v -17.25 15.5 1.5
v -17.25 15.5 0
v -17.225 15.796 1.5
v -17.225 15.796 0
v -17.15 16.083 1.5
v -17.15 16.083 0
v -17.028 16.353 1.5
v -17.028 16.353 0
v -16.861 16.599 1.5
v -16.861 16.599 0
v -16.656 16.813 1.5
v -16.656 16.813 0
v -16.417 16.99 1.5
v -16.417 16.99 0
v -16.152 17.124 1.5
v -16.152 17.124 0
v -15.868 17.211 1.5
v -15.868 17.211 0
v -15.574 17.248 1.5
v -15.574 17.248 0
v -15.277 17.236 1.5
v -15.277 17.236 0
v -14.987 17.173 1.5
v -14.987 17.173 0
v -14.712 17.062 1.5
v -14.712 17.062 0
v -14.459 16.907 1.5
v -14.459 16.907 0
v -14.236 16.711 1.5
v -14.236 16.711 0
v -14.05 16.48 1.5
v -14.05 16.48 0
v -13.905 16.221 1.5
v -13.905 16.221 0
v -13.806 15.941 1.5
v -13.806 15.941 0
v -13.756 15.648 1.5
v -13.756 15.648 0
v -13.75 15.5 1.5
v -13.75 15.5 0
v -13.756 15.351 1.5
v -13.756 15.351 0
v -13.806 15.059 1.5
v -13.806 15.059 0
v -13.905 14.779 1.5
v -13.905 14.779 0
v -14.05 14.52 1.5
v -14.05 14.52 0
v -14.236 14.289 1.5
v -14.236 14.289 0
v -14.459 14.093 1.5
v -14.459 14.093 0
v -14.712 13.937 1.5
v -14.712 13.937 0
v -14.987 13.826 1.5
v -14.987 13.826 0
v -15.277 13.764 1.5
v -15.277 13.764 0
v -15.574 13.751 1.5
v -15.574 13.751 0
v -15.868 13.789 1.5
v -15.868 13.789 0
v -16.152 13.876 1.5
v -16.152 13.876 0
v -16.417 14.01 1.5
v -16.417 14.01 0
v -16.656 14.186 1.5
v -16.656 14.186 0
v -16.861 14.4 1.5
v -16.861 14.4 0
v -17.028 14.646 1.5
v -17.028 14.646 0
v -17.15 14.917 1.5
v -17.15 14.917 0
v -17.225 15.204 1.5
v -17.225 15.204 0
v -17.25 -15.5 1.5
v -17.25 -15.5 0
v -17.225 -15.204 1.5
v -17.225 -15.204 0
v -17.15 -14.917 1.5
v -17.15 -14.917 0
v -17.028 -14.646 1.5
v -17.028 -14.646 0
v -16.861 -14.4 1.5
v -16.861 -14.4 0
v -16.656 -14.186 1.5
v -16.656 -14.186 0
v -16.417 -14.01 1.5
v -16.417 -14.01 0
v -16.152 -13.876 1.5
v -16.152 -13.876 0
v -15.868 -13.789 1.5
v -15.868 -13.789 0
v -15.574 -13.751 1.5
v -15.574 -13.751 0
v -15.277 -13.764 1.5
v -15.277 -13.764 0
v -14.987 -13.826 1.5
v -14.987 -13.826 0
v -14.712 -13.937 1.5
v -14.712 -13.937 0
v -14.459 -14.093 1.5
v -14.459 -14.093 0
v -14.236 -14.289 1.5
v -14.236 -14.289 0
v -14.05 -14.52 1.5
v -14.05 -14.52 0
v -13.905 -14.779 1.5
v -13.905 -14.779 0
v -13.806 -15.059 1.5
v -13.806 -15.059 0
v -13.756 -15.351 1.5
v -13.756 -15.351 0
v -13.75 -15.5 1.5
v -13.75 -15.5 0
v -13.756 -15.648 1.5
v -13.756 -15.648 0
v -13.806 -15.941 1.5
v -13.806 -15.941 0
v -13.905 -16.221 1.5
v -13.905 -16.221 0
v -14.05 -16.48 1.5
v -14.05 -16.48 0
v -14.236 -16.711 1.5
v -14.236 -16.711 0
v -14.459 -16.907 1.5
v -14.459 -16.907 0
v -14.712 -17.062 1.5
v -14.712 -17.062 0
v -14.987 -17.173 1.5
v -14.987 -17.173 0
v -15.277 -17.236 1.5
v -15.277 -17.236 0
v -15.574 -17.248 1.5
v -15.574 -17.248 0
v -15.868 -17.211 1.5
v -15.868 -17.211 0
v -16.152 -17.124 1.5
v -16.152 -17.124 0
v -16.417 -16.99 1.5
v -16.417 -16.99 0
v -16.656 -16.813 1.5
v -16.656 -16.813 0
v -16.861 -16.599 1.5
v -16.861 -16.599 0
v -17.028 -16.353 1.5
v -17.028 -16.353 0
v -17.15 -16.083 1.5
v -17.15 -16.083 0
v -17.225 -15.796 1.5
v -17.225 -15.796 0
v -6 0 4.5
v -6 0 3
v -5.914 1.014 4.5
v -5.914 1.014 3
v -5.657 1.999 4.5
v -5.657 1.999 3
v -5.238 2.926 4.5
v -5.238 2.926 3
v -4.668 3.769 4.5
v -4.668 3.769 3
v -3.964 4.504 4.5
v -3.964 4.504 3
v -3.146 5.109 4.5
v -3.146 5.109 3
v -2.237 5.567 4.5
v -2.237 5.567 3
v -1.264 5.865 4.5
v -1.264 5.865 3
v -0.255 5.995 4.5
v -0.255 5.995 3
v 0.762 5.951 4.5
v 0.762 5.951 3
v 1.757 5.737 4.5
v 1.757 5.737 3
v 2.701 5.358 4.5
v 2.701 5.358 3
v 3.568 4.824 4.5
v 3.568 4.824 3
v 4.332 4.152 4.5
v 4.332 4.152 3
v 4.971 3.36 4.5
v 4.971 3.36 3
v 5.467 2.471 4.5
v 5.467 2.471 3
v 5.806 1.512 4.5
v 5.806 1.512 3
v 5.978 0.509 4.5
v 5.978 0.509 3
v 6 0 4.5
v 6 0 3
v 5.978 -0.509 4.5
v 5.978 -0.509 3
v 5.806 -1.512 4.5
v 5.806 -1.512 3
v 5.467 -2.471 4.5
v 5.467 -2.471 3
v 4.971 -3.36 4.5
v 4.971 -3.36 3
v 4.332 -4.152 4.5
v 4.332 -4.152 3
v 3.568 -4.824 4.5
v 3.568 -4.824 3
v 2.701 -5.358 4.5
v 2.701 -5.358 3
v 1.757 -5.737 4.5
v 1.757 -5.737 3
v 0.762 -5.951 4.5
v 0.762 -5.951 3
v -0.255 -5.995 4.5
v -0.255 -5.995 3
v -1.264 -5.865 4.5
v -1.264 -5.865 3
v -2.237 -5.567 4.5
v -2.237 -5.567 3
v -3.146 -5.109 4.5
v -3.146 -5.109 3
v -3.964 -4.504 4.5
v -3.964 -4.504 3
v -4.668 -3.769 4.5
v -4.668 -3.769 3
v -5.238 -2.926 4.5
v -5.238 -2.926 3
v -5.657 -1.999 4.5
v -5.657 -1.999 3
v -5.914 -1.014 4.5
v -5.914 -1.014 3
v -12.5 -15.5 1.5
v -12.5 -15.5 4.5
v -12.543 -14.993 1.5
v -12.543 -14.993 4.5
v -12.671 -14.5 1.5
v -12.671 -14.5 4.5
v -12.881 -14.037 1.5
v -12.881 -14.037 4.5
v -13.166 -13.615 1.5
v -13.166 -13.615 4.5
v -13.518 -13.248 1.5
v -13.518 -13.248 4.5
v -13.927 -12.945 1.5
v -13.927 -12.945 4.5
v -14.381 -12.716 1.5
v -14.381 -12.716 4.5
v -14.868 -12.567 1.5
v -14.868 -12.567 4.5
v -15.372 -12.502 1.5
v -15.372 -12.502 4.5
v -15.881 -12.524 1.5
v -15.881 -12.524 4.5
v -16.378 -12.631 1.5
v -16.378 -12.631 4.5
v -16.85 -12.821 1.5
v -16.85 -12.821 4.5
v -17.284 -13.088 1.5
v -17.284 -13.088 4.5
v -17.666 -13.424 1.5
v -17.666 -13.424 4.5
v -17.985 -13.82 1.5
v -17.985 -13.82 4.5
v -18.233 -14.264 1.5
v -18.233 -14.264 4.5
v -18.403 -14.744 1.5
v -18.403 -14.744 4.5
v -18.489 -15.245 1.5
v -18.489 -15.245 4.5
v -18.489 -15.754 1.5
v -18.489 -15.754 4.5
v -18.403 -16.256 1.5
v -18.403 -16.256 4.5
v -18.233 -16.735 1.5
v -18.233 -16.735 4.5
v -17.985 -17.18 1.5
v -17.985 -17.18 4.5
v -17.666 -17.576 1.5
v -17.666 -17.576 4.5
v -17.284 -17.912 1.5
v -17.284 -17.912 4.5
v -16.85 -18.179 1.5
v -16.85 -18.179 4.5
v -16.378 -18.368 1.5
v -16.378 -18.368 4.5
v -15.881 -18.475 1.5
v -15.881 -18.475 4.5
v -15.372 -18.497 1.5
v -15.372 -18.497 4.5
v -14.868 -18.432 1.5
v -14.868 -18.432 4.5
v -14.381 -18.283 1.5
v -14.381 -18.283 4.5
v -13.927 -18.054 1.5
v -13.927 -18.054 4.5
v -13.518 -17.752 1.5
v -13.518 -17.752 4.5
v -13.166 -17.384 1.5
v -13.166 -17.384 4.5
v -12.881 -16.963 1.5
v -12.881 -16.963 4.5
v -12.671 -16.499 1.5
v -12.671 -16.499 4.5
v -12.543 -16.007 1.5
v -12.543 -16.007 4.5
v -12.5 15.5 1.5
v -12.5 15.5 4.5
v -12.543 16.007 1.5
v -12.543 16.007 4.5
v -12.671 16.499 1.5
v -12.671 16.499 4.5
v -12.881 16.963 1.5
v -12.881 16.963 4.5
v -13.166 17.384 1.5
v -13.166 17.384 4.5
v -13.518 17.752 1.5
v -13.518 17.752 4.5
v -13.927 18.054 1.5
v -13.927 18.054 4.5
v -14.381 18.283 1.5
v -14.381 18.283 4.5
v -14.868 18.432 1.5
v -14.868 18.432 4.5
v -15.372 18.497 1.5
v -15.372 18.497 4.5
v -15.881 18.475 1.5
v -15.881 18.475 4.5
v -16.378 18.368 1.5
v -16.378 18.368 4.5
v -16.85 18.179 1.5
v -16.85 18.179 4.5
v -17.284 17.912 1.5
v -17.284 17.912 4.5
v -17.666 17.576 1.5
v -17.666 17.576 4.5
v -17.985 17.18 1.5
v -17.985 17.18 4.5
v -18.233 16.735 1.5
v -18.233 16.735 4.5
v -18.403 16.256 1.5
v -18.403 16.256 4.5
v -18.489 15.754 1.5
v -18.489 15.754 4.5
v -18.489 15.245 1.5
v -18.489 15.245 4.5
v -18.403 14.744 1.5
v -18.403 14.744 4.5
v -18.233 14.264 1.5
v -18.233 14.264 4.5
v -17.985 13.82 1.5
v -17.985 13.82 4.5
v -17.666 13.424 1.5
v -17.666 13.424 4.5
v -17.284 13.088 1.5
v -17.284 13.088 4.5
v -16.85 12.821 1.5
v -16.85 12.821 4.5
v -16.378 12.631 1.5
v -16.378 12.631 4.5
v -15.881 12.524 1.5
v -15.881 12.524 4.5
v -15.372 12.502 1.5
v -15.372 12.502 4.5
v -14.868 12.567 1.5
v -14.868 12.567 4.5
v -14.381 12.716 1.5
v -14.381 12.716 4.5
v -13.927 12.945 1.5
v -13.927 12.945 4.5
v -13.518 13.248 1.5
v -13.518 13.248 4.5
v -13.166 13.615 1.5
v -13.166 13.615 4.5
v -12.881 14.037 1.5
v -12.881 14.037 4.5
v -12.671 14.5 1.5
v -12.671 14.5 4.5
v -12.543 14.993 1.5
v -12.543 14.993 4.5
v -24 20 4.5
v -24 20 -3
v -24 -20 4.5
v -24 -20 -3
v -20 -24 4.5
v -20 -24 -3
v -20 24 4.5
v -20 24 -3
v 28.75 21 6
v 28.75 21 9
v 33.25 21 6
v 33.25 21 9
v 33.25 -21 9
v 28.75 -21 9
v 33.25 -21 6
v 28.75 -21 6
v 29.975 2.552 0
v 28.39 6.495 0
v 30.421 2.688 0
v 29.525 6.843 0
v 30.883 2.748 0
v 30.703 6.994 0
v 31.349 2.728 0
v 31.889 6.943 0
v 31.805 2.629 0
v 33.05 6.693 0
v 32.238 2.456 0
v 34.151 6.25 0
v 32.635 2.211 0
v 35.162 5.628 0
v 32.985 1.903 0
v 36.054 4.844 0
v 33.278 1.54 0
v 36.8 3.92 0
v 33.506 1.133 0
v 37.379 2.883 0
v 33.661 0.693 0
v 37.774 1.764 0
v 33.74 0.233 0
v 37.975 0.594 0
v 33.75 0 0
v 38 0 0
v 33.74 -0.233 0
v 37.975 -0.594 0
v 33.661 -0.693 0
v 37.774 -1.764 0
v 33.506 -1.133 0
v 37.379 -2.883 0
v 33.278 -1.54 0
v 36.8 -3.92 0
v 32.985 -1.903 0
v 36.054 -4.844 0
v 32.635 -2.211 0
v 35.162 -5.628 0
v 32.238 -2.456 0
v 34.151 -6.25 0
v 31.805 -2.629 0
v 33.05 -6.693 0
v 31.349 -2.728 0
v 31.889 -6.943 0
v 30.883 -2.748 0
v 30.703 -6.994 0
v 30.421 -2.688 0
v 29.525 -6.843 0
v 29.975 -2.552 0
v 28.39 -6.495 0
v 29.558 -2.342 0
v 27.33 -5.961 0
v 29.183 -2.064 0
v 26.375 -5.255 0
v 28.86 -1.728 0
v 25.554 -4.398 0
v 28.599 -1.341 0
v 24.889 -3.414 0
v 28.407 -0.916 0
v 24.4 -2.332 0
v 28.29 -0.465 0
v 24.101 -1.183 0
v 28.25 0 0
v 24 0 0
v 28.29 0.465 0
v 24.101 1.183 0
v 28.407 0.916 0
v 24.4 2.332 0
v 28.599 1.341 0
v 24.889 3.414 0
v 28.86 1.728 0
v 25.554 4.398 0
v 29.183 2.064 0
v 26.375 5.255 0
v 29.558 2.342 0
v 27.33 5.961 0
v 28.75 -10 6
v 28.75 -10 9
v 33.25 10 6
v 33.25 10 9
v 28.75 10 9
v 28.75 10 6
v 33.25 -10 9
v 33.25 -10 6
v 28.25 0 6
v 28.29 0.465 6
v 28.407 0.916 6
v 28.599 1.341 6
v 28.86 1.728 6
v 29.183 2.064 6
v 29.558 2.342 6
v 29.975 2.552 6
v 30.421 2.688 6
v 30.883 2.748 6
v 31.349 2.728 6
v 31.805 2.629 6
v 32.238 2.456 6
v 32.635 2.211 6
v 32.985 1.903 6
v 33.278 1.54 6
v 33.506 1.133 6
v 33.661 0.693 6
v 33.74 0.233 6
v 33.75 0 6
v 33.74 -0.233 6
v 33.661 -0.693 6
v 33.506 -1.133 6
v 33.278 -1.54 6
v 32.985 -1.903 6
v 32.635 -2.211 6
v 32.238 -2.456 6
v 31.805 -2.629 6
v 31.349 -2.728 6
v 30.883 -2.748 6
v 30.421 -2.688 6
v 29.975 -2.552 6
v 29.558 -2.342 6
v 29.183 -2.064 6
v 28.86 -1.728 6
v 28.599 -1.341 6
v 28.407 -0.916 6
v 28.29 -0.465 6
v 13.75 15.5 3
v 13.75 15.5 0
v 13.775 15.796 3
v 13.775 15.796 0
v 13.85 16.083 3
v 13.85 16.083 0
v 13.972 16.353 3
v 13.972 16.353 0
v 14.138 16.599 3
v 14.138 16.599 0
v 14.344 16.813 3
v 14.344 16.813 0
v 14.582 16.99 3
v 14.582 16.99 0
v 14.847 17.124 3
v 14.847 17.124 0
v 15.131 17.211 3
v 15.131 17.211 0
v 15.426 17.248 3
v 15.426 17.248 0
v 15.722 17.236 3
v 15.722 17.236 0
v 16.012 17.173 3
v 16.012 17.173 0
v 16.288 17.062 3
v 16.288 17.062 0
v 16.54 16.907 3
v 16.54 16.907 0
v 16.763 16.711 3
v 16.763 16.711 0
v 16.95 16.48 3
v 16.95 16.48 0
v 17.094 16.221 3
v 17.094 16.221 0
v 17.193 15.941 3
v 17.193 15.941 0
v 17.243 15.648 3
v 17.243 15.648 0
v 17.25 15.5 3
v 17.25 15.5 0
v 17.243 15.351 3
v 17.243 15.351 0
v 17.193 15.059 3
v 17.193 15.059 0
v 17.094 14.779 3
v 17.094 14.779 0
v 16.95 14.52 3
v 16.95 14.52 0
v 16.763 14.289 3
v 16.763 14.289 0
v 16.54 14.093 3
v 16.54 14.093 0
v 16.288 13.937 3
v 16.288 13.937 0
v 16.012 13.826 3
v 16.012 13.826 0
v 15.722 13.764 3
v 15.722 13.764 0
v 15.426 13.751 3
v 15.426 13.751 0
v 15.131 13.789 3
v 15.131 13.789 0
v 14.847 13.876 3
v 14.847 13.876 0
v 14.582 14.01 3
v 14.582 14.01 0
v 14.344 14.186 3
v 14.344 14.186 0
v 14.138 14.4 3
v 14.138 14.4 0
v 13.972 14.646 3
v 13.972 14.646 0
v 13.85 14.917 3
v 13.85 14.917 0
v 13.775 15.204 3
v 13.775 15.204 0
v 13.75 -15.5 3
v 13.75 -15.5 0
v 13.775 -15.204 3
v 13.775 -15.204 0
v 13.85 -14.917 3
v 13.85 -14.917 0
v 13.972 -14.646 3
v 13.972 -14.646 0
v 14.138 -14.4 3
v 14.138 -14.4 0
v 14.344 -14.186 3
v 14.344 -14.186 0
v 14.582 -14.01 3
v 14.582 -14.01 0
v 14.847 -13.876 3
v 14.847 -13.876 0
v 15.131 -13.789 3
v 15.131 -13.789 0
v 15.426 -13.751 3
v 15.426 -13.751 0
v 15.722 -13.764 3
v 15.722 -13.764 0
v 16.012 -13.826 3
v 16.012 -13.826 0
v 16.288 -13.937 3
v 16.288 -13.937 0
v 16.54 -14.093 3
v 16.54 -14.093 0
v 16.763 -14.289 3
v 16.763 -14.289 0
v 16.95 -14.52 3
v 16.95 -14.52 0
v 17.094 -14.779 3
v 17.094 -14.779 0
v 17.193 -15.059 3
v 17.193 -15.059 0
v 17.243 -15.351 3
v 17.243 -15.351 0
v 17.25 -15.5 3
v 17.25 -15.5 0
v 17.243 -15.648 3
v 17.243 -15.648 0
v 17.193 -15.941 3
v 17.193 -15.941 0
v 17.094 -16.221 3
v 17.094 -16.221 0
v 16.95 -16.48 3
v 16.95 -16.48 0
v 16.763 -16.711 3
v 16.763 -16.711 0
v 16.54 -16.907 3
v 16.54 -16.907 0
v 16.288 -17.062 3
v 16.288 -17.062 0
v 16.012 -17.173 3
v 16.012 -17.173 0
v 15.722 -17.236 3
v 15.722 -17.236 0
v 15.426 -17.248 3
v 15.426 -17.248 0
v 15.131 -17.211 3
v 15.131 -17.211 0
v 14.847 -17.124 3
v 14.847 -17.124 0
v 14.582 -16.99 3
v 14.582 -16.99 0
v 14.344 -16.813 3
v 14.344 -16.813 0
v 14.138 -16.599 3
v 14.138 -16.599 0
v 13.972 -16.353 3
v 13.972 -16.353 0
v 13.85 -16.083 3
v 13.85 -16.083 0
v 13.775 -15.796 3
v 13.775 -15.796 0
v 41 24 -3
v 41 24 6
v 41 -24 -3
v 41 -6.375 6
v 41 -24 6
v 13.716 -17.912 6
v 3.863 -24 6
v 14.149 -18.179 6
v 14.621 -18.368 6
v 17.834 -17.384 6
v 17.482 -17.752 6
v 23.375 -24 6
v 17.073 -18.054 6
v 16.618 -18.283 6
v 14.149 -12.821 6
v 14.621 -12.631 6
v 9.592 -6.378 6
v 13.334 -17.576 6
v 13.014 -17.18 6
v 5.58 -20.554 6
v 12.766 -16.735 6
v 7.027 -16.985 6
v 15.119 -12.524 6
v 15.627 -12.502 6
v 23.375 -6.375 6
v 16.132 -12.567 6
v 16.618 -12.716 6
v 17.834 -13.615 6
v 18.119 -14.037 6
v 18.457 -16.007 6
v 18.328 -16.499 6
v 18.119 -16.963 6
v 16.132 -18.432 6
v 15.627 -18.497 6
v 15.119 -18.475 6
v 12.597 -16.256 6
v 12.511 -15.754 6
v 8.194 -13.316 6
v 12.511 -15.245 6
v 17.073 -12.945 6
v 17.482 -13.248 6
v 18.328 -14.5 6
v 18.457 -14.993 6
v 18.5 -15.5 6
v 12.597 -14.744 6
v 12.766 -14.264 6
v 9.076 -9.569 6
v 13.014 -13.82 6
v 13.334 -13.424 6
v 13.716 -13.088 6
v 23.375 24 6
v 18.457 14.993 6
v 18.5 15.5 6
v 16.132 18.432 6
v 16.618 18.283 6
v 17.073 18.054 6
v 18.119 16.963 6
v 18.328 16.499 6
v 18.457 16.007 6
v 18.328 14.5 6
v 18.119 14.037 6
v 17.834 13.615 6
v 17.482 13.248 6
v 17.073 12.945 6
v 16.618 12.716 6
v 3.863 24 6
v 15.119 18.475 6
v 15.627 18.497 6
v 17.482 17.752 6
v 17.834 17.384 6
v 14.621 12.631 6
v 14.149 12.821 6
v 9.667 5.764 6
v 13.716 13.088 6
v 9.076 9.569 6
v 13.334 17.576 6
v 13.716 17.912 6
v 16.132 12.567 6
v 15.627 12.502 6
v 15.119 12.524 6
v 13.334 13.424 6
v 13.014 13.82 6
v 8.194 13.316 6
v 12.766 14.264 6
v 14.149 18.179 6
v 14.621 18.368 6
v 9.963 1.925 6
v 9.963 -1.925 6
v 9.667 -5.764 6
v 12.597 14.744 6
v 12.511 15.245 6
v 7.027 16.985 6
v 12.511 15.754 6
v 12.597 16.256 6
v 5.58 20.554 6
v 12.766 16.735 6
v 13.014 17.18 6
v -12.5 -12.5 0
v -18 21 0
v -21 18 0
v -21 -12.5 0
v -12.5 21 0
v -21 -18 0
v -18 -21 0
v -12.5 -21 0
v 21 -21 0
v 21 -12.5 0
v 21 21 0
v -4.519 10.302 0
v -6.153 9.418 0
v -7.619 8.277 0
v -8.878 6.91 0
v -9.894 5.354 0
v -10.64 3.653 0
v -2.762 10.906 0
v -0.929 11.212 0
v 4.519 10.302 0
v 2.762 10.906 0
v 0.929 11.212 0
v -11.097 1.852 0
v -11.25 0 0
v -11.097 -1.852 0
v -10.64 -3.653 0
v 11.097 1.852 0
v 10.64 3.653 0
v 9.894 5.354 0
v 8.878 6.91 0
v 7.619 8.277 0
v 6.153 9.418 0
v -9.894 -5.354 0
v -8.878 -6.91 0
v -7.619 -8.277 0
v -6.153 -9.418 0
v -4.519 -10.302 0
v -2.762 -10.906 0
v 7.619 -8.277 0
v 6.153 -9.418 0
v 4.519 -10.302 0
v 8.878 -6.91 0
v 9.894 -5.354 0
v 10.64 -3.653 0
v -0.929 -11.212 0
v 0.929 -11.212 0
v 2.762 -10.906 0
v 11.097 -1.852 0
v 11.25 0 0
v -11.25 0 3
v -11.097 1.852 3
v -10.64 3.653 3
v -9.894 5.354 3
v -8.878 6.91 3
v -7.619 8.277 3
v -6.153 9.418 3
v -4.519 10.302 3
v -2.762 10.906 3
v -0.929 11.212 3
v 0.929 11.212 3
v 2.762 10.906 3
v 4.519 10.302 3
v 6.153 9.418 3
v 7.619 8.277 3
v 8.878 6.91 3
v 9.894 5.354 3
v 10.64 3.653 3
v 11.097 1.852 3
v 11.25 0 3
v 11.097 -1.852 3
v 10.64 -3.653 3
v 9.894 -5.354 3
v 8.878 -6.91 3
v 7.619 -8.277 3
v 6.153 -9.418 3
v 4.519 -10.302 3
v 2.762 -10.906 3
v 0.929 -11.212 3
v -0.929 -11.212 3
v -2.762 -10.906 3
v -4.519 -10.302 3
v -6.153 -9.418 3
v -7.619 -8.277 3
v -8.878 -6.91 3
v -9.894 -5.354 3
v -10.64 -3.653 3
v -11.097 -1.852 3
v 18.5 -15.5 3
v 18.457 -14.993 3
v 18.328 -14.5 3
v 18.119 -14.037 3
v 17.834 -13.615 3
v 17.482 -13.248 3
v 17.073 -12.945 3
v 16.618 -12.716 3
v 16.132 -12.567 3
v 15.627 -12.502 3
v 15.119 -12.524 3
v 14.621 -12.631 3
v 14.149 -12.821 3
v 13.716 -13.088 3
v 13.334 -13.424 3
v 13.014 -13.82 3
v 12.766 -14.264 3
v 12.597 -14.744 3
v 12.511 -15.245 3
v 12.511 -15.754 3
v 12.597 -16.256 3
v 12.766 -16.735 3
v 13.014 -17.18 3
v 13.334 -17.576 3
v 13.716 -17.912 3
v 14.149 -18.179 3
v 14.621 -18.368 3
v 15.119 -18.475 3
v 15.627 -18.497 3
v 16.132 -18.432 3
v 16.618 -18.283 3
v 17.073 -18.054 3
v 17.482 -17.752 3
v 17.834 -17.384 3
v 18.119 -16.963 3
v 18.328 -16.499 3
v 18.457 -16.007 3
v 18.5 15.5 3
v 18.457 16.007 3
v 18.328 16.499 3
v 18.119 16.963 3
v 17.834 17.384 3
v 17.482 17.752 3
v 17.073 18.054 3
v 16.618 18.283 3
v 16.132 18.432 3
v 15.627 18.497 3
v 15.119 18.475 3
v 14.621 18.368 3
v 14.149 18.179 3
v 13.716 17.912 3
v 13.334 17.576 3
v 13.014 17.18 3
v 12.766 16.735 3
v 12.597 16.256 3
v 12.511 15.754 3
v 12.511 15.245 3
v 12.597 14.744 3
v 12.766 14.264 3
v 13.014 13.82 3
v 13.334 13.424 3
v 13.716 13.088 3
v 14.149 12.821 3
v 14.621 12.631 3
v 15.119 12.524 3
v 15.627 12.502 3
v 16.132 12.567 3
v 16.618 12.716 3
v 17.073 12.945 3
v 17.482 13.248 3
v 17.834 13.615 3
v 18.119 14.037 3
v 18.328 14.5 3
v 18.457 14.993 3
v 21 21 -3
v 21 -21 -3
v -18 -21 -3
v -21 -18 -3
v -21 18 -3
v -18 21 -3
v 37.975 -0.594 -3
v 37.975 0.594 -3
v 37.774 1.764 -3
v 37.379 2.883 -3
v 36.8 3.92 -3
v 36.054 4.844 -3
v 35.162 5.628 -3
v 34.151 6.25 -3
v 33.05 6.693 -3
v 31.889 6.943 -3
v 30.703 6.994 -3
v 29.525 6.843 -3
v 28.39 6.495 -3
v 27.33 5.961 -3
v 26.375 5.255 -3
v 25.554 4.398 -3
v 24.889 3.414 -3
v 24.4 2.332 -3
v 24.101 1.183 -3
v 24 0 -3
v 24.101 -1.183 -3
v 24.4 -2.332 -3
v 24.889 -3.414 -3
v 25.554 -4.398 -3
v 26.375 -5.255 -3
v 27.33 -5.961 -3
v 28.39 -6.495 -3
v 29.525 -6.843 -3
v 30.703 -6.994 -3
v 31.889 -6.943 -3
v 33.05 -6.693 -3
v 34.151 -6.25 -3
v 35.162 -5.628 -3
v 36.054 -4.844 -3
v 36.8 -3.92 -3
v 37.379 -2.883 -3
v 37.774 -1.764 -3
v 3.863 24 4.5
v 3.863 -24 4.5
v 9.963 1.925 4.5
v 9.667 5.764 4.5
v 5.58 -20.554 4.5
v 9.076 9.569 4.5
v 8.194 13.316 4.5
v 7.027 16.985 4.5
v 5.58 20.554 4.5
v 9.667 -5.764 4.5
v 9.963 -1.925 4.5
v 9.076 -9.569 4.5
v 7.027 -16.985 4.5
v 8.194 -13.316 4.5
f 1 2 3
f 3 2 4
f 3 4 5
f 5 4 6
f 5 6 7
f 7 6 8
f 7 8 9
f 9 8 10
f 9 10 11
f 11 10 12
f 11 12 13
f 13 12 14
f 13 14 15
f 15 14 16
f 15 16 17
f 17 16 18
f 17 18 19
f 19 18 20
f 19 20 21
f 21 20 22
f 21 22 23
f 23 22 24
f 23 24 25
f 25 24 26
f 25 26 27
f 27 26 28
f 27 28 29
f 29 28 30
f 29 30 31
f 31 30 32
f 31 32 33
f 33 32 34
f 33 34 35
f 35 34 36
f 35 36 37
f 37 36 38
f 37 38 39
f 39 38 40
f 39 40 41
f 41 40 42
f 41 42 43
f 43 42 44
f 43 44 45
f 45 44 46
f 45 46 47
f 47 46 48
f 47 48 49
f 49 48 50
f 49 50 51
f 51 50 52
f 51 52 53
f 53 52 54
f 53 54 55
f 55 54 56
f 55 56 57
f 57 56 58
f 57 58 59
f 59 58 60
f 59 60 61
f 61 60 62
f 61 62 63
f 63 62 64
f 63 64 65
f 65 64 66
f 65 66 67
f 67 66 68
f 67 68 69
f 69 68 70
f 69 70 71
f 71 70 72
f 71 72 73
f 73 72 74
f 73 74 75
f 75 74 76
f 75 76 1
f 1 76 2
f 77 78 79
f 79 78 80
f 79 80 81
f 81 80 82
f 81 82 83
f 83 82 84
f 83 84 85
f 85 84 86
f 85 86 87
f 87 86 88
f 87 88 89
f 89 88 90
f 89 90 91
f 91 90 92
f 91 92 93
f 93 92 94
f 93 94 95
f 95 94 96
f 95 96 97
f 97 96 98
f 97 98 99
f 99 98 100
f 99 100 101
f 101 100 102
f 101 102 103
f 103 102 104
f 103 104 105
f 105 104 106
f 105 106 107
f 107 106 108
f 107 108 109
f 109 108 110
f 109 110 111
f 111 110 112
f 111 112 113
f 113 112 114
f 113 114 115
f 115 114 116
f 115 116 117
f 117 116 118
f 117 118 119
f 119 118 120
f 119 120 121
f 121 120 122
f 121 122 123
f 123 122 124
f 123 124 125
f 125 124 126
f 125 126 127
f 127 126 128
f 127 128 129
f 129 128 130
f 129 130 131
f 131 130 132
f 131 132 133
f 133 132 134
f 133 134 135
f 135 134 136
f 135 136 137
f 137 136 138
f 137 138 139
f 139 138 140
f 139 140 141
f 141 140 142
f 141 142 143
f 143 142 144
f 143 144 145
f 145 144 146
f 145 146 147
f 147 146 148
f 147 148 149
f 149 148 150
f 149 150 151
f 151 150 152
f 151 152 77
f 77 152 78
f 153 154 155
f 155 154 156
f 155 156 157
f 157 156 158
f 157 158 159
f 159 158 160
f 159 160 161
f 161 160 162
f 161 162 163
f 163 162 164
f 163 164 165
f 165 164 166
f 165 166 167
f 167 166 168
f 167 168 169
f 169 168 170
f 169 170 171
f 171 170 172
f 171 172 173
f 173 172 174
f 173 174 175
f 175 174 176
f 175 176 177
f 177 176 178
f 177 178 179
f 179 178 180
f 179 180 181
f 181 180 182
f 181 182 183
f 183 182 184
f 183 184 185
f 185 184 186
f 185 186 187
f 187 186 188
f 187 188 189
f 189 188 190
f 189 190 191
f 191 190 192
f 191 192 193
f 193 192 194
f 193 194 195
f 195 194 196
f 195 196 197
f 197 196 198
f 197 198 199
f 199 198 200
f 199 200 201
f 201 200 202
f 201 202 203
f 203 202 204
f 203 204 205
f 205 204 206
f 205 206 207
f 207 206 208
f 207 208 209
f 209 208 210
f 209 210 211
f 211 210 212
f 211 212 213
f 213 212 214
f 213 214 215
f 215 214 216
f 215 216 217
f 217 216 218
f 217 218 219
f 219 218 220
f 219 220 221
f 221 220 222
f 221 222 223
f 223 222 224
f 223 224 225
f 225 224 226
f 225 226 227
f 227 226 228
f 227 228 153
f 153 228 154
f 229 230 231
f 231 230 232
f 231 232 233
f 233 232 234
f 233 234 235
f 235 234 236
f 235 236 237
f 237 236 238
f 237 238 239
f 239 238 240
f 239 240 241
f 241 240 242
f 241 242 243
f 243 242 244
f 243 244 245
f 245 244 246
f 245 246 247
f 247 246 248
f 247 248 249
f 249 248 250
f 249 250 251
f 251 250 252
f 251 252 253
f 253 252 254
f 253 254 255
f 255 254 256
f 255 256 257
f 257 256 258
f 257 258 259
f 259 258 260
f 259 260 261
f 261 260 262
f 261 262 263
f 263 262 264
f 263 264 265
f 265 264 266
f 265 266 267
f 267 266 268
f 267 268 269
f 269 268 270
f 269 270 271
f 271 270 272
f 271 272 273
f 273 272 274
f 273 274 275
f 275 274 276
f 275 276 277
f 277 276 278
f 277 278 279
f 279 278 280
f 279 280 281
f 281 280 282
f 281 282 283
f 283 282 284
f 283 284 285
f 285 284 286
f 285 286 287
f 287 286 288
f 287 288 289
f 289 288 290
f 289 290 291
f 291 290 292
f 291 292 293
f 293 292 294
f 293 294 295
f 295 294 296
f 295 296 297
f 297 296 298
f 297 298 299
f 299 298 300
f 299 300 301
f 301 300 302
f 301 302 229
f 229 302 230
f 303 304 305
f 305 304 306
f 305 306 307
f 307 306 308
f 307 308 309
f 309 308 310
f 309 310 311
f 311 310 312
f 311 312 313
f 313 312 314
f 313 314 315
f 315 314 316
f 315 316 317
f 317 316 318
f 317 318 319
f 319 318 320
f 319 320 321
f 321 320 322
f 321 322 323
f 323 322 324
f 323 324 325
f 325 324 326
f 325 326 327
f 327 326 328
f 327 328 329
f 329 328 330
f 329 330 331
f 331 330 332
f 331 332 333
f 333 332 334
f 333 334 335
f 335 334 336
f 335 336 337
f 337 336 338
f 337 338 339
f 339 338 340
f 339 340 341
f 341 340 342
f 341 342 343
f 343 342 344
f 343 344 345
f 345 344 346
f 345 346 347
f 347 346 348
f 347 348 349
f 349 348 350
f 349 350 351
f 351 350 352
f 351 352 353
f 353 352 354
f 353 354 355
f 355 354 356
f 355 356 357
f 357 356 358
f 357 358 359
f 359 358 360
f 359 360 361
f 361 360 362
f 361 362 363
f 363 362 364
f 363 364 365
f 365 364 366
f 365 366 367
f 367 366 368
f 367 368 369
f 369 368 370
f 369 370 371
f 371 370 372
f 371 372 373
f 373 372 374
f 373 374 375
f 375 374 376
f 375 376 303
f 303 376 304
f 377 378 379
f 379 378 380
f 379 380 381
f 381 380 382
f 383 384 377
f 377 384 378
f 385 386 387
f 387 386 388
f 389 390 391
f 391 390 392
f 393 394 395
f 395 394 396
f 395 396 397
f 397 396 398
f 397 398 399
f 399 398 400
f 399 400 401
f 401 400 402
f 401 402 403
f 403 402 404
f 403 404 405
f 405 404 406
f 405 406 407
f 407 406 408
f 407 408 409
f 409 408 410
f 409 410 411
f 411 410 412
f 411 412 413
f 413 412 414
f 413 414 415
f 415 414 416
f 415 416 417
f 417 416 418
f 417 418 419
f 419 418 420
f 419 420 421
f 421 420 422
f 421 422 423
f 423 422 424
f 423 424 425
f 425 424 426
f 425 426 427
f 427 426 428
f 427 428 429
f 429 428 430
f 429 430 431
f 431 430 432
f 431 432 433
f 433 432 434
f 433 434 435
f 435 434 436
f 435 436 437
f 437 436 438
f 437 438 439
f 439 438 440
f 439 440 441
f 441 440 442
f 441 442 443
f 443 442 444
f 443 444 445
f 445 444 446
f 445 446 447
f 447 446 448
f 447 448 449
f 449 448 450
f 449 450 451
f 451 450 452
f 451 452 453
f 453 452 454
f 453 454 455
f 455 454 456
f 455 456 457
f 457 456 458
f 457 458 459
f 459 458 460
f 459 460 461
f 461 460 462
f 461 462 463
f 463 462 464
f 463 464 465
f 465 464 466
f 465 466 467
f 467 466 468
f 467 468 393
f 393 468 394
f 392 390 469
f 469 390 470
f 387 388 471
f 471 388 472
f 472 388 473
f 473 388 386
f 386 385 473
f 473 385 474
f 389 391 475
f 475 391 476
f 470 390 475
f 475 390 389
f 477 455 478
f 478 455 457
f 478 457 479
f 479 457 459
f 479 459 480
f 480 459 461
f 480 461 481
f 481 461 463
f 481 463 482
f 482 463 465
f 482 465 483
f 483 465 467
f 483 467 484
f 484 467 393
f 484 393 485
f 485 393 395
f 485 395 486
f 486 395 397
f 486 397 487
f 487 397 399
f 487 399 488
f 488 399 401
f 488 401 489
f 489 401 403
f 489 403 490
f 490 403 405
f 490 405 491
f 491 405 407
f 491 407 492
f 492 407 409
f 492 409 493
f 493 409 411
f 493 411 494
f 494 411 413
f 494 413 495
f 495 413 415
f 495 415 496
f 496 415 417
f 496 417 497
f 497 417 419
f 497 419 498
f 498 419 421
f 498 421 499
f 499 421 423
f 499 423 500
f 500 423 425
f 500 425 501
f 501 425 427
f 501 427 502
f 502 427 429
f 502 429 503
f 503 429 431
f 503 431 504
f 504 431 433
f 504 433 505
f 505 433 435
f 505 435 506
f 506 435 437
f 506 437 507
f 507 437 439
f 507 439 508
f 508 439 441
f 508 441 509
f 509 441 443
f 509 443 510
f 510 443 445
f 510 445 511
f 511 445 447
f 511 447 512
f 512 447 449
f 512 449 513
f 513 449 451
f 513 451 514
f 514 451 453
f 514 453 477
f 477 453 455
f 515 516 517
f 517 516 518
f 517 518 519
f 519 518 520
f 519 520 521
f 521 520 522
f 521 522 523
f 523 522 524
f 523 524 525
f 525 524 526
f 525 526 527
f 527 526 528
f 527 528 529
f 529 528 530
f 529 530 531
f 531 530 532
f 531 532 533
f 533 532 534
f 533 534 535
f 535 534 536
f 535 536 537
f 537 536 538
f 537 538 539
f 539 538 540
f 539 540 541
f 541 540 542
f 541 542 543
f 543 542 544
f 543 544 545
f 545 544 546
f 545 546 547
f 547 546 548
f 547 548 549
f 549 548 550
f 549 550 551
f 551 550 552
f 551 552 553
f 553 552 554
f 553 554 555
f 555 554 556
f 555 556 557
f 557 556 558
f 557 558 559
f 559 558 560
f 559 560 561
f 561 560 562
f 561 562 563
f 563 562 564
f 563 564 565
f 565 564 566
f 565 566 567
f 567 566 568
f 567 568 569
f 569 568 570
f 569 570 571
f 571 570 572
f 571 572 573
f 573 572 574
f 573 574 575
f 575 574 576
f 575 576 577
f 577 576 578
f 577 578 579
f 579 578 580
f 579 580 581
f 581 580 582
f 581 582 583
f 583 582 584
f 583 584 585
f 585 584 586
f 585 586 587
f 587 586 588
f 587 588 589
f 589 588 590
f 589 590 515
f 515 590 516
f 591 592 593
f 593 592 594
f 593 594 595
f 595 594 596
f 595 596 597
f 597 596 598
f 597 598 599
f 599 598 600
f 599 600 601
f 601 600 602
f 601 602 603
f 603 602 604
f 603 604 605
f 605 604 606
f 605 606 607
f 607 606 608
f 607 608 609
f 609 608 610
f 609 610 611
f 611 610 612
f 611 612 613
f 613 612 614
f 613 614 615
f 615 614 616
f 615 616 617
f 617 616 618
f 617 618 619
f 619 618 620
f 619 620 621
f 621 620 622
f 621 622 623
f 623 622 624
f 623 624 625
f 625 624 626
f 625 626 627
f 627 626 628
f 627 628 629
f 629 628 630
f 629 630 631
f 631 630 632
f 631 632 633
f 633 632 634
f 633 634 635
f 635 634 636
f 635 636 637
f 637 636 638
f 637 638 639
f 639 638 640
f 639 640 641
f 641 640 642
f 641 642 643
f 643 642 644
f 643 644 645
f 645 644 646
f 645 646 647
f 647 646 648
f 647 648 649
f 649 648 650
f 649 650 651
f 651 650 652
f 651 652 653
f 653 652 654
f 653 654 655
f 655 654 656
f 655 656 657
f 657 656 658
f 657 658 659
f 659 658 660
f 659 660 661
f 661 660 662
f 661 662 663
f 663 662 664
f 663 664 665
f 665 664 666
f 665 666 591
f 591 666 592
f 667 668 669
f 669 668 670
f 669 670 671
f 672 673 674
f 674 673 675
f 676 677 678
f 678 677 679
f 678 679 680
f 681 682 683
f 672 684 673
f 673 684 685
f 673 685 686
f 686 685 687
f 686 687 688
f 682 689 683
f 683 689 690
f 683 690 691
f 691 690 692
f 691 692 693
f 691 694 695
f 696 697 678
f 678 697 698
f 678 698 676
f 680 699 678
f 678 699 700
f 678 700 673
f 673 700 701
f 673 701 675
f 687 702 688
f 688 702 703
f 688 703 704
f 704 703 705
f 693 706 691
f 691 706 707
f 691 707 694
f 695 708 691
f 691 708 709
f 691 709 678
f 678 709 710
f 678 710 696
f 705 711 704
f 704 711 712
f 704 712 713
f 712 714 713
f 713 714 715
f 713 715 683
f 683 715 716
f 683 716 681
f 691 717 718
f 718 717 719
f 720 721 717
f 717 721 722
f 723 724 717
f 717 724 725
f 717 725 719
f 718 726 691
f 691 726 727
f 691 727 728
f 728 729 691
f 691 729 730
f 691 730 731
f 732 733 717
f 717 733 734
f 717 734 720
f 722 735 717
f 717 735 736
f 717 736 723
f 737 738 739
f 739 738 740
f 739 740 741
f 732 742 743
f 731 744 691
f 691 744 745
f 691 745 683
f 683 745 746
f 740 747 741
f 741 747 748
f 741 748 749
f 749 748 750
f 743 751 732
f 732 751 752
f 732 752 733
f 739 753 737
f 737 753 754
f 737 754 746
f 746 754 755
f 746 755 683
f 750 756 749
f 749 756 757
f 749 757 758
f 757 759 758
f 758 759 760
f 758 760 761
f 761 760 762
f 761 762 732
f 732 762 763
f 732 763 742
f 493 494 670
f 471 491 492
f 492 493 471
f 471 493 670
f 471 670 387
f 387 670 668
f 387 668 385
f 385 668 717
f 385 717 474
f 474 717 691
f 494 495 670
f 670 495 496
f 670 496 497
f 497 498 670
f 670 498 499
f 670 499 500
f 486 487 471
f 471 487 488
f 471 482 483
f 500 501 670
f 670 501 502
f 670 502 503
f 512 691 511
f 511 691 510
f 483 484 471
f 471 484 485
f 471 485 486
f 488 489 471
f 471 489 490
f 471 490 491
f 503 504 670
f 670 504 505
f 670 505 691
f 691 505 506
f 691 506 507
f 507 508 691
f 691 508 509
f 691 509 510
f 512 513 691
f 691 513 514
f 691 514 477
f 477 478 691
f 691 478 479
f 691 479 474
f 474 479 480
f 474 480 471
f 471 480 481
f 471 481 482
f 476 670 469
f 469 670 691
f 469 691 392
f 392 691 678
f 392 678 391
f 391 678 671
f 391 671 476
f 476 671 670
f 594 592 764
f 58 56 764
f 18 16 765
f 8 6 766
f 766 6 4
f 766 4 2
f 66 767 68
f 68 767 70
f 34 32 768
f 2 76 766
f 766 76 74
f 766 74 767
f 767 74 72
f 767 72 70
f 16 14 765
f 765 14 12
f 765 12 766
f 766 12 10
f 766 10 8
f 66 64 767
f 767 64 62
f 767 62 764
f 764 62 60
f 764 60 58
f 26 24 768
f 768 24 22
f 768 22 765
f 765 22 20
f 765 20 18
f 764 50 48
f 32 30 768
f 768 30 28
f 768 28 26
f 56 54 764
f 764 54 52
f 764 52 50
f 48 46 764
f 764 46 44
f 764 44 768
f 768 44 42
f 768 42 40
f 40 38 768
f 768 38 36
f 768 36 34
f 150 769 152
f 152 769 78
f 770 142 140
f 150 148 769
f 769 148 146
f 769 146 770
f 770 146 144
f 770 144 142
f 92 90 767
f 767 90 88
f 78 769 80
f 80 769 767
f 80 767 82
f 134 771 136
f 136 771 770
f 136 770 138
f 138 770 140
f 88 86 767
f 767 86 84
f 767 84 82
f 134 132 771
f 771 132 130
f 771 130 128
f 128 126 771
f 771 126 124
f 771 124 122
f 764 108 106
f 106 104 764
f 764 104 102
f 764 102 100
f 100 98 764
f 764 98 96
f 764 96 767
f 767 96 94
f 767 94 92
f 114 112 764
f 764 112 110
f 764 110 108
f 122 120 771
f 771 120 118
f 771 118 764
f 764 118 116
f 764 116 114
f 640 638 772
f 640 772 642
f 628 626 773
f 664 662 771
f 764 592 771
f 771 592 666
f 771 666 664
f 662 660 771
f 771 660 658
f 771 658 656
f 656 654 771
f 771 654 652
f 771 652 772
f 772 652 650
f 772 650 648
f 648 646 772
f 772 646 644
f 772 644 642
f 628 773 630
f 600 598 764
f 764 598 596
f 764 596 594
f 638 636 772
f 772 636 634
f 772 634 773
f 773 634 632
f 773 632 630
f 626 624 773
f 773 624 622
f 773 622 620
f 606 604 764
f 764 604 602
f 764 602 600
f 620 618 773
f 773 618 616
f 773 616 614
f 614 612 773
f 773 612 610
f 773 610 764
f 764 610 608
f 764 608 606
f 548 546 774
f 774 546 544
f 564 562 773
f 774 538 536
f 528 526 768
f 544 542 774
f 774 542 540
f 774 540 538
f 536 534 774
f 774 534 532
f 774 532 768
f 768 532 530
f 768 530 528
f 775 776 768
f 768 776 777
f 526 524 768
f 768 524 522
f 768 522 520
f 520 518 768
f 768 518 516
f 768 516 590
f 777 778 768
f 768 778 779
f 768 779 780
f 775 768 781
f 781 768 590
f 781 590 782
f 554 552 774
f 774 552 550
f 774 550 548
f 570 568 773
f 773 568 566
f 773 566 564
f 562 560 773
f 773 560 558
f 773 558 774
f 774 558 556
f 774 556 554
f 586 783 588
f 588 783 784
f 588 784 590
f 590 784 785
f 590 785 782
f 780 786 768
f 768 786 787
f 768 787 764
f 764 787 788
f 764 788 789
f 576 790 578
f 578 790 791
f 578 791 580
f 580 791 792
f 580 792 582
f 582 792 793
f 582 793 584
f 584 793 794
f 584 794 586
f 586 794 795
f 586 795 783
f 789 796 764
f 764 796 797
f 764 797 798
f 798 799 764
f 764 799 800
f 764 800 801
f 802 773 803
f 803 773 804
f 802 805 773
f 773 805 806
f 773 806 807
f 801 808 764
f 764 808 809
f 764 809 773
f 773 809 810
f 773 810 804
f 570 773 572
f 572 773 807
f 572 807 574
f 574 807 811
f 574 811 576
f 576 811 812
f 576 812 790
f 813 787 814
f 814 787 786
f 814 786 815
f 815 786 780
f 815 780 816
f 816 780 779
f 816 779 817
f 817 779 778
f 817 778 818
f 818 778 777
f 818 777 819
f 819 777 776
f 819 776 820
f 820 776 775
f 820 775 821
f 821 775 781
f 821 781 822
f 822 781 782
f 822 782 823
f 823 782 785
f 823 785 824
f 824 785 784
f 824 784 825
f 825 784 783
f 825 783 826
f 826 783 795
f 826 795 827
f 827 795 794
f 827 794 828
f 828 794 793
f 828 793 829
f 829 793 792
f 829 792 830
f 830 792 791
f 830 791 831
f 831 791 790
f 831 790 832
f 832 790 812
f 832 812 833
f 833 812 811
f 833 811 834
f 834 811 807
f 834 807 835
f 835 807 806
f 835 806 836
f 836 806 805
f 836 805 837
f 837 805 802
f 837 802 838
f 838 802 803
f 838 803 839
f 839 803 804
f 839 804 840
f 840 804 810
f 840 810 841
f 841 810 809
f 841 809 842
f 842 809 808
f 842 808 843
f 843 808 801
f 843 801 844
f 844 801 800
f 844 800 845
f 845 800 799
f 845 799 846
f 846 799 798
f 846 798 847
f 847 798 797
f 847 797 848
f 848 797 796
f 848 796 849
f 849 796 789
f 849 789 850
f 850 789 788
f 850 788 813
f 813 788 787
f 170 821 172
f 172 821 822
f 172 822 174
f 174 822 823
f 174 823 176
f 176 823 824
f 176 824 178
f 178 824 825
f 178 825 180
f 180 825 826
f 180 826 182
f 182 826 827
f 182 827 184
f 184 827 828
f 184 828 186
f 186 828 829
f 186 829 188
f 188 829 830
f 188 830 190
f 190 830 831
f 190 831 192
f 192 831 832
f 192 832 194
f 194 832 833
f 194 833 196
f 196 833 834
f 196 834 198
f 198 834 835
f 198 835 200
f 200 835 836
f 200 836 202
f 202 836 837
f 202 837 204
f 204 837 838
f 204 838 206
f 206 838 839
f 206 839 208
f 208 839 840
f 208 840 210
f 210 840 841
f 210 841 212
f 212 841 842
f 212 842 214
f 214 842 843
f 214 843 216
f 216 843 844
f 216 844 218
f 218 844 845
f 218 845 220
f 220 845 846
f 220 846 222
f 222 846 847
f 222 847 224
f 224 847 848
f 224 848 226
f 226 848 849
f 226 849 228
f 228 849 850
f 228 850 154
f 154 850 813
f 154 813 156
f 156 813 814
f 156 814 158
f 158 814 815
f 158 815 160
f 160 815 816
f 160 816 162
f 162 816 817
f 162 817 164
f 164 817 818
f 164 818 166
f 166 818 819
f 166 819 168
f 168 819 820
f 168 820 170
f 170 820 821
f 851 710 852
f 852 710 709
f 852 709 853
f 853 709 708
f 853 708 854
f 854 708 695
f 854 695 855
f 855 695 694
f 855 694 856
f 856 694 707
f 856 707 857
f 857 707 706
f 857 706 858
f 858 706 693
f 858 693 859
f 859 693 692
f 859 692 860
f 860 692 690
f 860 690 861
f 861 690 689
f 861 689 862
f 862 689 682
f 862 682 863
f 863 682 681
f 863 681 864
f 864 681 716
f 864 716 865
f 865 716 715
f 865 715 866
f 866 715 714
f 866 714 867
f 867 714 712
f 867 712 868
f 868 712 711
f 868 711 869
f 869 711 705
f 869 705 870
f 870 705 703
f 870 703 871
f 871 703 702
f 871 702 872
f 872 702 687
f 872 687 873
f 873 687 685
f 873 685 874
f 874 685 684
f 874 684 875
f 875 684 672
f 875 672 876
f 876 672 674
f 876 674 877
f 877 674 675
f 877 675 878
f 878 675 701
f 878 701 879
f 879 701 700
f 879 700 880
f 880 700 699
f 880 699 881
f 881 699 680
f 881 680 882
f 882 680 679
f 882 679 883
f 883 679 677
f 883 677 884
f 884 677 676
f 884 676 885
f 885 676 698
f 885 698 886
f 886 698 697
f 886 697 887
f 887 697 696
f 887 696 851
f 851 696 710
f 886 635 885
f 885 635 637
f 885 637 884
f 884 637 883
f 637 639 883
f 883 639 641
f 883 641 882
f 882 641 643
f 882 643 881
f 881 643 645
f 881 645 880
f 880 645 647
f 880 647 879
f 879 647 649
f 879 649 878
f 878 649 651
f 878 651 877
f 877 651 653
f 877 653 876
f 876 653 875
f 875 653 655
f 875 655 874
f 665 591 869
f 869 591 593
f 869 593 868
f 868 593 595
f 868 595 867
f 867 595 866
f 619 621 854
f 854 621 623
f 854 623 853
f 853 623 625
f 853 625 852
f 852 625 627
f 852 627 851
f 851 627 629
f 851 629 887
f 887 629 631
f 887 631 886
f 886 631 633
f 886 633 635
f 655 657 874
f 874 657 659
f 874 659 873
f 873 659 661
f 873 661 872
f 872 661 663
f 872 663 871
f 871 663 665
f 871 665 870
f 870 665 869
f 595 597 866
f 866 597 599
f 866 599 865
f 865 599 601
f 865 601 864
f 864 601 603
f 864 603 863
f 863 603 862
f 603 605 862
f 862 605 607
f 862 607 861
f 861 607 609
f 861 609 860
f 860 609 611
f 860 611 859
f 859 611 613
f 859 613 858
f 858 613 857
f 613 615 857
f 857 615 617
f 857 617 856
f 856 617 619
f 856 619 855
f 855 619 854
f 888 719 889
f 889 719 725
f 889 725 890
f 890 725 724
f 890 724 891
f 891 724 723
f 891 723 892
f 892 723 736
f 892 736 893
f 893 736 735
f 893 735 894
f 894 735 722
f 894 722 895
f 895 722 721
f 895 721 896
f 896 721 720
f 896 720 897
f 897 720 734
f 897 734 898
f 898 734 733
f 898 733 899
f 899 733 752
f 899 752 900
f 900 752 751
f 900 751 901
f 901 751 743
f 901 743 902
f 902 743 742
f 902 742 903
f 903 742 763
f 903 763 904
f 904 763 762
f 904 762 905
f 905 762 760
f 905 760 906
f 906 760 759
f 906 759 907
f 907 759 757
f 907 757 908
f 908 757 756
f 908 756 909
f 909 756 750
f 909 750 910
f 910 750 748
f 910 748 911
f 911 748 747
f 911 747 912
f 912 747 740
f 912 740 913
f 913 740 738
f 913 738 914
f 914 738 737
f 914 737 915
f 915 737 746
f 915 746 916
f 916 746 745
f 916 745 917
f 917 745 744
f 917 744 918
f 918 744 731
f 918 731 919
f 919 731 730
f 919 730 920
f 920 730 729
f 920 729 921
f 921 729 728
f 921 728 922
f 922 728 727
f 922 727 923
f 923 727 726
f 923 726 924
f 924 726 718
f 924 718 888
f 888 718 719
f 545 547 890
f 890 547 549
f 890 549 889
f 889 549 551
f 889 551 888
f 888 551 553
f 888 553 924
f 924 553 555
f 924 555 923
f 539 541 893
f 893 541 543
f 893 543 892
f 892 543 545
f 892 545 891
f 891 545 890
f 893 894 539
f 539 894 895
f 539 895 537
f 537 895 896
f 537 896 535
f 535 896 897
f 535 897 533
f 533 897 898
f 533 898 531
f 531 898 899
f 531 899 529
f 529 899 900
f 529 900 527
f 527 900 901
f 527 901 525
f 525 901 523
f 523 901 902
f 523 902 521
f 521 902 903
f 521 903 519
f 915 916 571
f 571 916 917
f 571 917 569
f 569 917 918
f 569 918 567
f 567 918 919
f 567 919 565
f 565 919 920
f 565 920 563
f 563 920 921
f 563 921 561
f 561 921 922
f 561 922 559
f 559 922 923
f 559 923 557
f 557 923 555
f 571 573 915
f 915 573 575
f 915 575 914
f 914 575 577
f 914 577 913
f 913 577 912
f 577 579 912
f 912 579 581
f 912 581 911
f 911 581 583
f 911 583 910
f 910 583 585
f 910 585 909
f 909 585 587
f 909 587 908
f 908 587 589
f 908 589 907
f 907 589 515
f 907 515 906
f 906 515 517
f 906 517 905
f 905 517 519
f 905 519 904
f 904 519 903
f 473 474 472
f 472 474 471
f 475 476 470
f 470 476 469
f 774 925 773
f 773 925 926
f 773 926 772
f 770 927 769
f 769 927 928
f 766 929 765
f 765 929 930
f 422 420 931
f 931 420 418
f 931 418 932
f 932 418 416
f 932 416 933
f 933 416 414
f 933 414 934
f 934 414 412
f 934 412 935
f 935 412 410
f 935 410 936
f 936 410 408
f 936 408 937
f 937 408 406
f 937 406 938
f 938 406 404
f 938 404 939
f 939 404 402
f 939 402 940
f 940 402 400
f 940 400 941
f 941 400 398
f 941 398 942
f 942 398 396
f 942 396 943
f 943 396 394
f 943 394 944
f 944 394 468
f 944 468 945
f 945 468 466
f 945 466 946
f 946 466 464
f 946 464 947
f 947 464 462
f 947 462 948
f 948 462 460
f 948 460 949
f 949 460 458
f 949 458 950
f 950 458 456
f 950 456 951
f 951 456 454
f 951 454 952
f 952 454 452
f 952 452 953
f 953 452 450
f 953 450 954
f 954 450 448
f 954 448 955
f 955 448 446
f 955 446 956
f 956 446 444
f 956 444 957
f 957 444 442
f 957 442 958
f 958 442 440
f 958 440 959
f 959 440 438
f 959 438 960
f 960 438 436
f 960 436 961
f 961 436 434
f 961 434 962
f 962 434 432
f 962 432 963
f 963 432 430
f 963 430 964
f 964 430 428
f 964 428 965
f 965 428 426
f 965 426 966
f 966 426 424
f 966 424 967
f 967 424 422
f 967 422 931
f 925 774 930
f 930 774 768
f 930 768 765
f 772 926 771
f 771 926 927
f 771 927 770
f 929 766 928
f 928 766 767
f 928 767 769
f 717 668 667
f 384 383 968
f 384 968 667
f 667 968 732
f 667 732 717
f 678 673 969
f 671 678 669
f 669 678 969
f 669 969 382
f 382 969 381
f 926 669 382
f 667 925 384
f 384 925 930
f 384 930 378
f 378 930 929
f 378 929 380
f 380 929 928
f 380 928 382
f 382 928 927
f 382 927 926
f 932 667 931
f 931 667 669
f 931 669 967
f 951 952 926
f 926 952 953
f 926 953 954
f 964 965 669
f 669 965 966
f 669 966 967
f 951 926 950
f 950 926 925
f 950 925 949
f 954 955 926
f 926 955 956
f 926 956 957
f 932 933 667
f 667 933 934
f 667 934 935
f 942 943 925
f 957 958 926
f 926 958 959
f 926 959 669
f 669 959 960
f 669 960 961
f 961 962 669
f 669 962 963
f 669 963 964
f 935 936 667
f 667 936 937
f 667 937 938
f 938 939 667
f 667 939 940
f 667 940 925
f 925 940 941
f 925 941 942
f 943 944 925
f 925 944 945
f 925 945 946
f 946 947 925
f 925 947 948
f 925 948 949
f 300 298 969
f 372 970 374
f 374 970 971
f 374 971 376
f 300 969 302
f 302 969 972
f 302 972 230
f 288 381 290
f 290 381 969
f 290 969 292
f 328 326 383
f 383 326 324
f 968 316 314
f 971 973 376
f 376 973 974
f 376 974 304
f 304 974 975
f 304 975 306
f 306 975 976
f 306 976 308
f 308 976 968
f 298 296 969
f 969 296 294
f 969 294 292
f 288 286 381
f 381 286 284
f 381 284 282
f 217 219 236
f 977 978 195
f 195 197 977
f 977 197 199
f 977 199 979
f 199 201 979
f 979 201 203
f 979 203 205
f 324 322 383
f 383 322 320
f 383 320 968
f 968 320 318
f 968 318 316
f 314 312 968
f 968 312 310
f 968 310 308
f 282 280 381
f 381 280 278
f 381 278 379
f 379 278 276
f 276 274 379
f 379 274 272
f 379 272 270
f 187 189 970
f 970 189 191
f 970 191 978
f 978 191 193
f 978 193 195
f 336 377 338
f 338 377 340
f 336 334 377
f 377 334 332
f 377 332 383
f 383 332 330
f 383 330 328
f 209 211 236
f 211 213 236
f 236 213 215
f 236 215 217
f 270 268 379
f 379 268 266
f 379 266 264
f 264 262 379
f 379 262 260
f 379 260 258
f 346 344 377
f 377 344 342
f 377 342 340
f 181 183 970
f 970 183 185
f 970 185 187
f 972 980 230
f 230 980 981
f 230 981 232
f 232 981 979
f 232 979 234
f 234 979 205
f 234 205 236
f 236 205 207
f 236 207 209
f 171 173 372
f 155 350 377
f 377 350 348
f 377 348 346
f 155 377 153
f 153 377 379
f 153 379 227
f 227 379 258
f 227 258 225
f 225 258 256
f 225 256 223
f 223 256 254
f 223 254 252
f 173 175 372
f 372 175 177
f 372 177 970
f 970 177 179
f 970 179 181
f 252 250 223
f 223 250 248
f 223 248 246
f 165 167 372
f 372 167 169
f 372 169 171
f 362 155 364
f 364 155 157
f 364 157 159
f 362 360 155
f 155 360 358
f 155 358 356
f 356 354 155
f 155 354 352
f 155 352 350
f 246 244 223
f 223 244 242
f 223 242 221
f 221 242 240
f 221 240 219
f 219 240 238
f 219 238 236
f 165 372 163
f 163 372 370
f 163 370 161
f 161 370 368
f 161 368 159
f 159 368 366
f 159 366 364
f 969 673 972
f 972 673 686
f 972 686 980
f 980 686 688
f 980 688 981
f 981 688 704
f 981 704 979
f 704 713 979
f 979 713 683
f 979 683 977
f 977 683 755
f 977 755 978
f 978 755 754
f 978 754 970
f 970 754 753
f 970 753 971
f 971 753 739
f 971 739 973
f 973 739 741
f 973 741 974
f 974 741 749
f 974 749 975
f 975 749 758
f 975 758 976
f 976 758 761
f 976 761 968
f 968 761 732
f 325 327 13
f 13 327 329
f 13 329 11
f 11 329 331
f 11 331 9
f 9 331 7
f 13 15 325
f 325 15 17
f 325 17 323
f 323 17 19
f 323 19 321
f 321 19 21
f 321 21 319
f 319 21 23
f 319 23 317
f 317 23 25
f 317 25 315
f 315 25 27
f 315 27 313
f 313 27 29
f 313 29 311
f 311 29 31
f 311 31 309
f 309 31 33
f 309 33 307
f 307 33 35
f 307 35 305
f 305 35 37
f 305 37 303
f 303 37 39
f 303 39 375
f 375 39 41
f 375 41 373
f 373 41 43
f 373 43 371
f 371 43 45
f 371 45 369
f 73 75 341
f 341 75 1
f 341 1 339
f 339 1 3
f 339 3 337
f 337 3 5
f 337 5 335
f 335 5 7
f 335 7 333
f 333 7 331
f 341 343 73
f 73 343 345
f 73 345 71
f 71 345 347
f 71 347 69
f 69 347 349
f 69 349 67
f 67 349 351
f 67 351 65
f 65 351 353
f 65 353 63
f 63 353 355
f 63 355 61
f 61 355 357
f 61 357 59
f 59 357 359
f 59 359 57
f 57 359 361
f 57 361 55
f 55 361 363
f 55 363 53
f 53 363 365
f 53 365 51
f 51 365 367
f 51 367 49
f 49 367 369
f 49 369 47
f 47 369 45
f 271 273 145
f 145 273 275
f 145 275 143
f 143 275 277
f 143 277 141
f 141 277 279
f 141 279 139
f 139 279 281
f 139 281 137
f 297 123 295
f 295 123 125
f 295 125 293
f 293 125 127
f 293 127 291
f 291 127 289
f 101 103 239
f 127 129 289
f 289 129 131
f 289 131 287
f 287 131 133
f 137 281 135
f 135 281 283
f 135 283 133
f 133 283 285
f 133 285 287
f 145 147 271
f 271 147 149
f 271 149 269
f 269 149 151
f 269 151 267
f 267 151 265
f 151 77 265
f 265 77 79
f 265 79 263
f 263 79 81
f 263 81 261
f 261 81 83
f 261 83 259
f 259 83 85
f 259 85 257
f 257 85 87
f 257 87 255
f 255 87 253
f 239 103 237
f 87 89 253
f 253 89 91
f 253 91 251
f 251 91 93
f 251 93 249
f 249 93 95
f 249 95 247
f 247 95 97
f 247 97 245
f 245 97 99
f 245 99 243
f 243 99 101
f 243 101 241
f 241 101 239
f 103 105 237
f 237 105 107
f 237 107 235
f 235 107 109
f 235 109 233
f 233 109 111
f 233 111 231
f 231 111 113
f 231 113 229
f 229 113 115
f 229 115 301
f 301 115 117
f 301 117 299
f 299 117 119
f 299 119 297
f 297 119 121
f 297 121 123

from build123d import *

# Parameters (mm, degrees)
SKETCH1_W                = 20
SKETCH1_H                = 42
SKETCH1_W_2              = 42
BOSS_EXTRUDE1_DEPTH      = 6
SKETCH2_R                = 11.25
CUT_EXTRUDE1_DEPTH       = 3
CUT_EXTRUDE2_DEPTH       = 47.454278597
CUT_EXTRUDE2_DEPTH_BACK  = 47.454278597
SKETCH3_R                = 1.75
SKETCH3_R_2              = 6
CUT_EXTRUDE3_START       = -3
SKETCH4_R                = 3
SKETCH4_R_2              = 1.75
CUT_EXTRUDE3_DEPTH       = 3
SKETCH5_W                = 4.5
SKETCH5_H                = 42
BOSS_EXTRUDE2_DEPTH      = 3
CHAMFER1_SIZE            = 3
CUT_EXTRUDE4_DEPTH       = 47.936126811
CUT_EXTRUDE4_DEPTH_BACK  = 47.936126811
SKETCH6_R                = 2.75
SKETCH7_W                = 9.456435582
SKETCH7_H                = 20
SKETCH7_R                = 2.75
CUT_EXTRUDE5_DEPTH       = 47.454278597
BOSS_EXTRUDE4_DEPTH      = 3
BOSS_EXTRUDE4_DEPTH_BACK = 6
SKETCH8_W                = 20
SKETCH8_H                = 42
SKETCH8_R                = 7
CHAMFER2_SIZE            = 4
SKETCH9_R                = 50
CUT_EXTRUDE7_DEPTH       = 1.5
CUT_EXTRUDE8_START       = -1.5
SKETCH10_R               = 3
CUT_EXTRUDE8_DEPTH       = 1.5


with BuildPart() as part:
    # Sketch1 → Boss-Extrude1 (new body)
    with BuildSketch(Plane.XY):
        with Locations((31, 0)):
            Rectangle(SKETCH1_W, SKETCH1_H)
        Rectangle(SKETCH1_W_2, SKETCH1_H)
    extrude(amount=BOSS_EXTRUDE1_DEPTH)

    # Sketch2 → Cut-Extrude1 (cut)
    with BuildSketch(Plane.XY):
        Circle(SKETCH2_R)
    extrude(amount=CUT_EXTRUDE1_DEPTH, mode=Mode.SUBTRACT)

    # Sketch3 → Cut-Extrude2 (cut, two sides: drawn at the far end of the back side and taken through both)
    with BuildSketch(Plane.XY.offset(-CUT_EXTRUDE2_DEPTH_BACK)):
        with Locations((-15.499780644, 15.499780644)):
            Circle(SKETCH3_R)
        Circle(SKETCH3_R_2)
        with Locations((15.499780644, 15.499780644)):
            Circle(SKETCH3_R)
        with Locations((15.499780644, -15.499780644)):
            Circle(SKETCH3_R)
        with Locations((-15.499780644, -15.499780644)):
            Circle(SKETCH3_R)
    extrude(amount=CUT_EXTRUDE2_DEPTH + CUT_EXTRUDE2_DEPTH_BACK, mode=Mode.SUBTRACT)

    # Sketch4 → Cut-Extrude3 (cut)
    # profile 1 of 4: a face of its own
    with BuildSketch(Plane.XY.offset(6).offset(CUT_EXTRUDE3_START)):
        with Locations((-15.499780644, -15.499780644)):
            Circle(SKETCH4_R)
        with Locations((-15.499780644, -15.499780644)):
            Circle(SKETCH4_R_2, mode=Mode.SUBTRACT)
    # profile 2 of 4: a face of its own
    with BuildSketch(Plane.XY.offset(6).offset(CUT_EXTRUDE3_START)):
        with Locations((-15.499780644, 15.499780644)):
            Circle(SKETCH4_R)
        with Locations((-15.499780644, 15.499780644)):
            Circle(SKETCH4_R_2, mode=Mode.SUBTRACT)
    # profile 3 of 4: a face of its own
    with BuildSketch(Plane.XY.offset(6).offset(CUT_EXTRUDE3_START)):
        with Locations((15.499780644, 15.499780644)):
            Circle(SKETCH4_R)
        with Locations((15.499780644, 15.499780644)):
            Circle(SKETCH4_R_2, mode=Mode.SUBTRACT)
    # profile 4 of 4: a face of its own
    with BuildSketch(Plane.XY.offset(6).offset(CUT_EXTRUDE3_START)):
        with Locations((15.499780644, -15.499780644)):
            Circle(SKETCH4_R)
        with Locations((15.499780644, -15.499780644)):
            Circle(SKETCH4_R_2, mode=Mode.SUBTRACT)
    extrude(amount=CUT_EXTRUDE3_DEPTH, mode=Mode.SUBTRACT)

    # Sketch5 → Boss-Extrude2 (add)
    with BuildSketch(Plane.XY.offset(6)):
        with Locations((31, 0)):
            Rectangle(SKETCH5_W, SKETCH5_H)
    extrude(amount=BOSS_EXTRUDE2_DEPTH)

    # Chamfer1
    chamfer1_edges = [part.edges().sort_by_distance(p)[0] for p in [
        (-21, -21, 3),
        (-21, 21, 3),
    ]]
    chamfer(chamfer1_edges, length=CHAMFER1_SIZE)

    # Sketch6 → Cut-Extrude4 (cut, two sides: drawn at the far end of the back side and taken through both)
    with BuildSketch(Plane(origin=(0, 0, 0), x_dir=(-1, 0, 0), z_dir=(0, 0, -1)).offset(-CUT_EXTRUDE4_DEPTH_BACK)):
        with Locations(Location((-31, 0, 0), (0, 0, 324.903198772))):
            Circle(SKETCH6_R)
    extrude(amount=CUT_EXTRUDE4_DEPTH + CUT_EXTRUDE4_DEPTH_BACK, mode=Mode.SUBTRACT)

    # Sketch7 → Cut-Extrude5 (cut, through all)
    with BuildSketch(Plane.XY.offset(6)):
        with Locations((31, 0)):
            Rectangle(SKETCH7_W, SKETCH7_H)
        with Locations((31, 0)):
            Circle(SKETCH7_R, mode=Mode.SUBTRACT)
    extrude(amount=CUT_EXTRUDE5_DEPTH, mode=Mode.SUBTRACT)

    # Sketch8 → Boss-Extrude4 (add, two sides: drawn at the far end of the back side and taken through both)
    # profile 1 of 2: a face of its own
    with BuildSketch(Plane(origin=(0, 0, 0), x_dir=(-1, 0, 0), z_dir=(0, 0, -1)).offset(-BOSS_EXTRUDE4_DEPTH_BACK)):
        Polygon((18, -21), (-21, -21), (-41, -21), (-41, -24), (24, -24), (24, 24), (-41, 24), (-41, 21), (-21, 21), (18, 21), (21, 18), (21, -18), align=None)
    # profile 2 of 2: a face of its own
    with BuildSketch(Plane(origin=(0, 0, 0), x_dir=(-1, 0, 0), z_dir=(0, 0, -1)).offset(-BOSS_EXTRUDE4_DEPTH_BACK)):
        with Locations((-31, 0)):
            Rectangle(SKETCH8_W, SKETCH8_H)
        with Locations((-31, 0)):
            Circle(SKETCH8_R, mode=Mode.SUBTRACT)
    extrude(amount=BOSS_EXTRUDE4_DEPTH + BOSS_EXTRUDE4_DEPTH_BACK)

    # Chamfer2
    chamfer2_edges = [part.edges().sort_by_distance(p)[0] for p in [
        (-24, 24, 1.5),
        (-24, -24, 1.5),
    ]]
    chamfer(chamfer2_edges, length=CHAMFER2_SIZE)

    # Sketch9 → Cut-Extrude7 (cut)
    with BuildSketch(Plane.XY.offset(6)):
        with Locations((-40, 0)):
            Circle(SKETCH9_R)
    extrude(amount=-CUT_EXTRUDE7_DEPTH, mode=Mode.SUBTRACT)

    # Sketch10 → Cut-Extrude8 (cut)
    with BuildSketch(Plane.XY.offset(3).offset(CUT_EXTRUDE8_START)):
        with Locations((-15.499780644, 15.499780644)):
            Circle(SKETCH10_R)
        with Locations((-15.499780644, -15.499780644)):
            Circle(SKETCH10_R)
    extrude(amount=CUT_EXTRUDE8_DEPTH, mode=Mode.SUBTRACT)


solid = part.part
